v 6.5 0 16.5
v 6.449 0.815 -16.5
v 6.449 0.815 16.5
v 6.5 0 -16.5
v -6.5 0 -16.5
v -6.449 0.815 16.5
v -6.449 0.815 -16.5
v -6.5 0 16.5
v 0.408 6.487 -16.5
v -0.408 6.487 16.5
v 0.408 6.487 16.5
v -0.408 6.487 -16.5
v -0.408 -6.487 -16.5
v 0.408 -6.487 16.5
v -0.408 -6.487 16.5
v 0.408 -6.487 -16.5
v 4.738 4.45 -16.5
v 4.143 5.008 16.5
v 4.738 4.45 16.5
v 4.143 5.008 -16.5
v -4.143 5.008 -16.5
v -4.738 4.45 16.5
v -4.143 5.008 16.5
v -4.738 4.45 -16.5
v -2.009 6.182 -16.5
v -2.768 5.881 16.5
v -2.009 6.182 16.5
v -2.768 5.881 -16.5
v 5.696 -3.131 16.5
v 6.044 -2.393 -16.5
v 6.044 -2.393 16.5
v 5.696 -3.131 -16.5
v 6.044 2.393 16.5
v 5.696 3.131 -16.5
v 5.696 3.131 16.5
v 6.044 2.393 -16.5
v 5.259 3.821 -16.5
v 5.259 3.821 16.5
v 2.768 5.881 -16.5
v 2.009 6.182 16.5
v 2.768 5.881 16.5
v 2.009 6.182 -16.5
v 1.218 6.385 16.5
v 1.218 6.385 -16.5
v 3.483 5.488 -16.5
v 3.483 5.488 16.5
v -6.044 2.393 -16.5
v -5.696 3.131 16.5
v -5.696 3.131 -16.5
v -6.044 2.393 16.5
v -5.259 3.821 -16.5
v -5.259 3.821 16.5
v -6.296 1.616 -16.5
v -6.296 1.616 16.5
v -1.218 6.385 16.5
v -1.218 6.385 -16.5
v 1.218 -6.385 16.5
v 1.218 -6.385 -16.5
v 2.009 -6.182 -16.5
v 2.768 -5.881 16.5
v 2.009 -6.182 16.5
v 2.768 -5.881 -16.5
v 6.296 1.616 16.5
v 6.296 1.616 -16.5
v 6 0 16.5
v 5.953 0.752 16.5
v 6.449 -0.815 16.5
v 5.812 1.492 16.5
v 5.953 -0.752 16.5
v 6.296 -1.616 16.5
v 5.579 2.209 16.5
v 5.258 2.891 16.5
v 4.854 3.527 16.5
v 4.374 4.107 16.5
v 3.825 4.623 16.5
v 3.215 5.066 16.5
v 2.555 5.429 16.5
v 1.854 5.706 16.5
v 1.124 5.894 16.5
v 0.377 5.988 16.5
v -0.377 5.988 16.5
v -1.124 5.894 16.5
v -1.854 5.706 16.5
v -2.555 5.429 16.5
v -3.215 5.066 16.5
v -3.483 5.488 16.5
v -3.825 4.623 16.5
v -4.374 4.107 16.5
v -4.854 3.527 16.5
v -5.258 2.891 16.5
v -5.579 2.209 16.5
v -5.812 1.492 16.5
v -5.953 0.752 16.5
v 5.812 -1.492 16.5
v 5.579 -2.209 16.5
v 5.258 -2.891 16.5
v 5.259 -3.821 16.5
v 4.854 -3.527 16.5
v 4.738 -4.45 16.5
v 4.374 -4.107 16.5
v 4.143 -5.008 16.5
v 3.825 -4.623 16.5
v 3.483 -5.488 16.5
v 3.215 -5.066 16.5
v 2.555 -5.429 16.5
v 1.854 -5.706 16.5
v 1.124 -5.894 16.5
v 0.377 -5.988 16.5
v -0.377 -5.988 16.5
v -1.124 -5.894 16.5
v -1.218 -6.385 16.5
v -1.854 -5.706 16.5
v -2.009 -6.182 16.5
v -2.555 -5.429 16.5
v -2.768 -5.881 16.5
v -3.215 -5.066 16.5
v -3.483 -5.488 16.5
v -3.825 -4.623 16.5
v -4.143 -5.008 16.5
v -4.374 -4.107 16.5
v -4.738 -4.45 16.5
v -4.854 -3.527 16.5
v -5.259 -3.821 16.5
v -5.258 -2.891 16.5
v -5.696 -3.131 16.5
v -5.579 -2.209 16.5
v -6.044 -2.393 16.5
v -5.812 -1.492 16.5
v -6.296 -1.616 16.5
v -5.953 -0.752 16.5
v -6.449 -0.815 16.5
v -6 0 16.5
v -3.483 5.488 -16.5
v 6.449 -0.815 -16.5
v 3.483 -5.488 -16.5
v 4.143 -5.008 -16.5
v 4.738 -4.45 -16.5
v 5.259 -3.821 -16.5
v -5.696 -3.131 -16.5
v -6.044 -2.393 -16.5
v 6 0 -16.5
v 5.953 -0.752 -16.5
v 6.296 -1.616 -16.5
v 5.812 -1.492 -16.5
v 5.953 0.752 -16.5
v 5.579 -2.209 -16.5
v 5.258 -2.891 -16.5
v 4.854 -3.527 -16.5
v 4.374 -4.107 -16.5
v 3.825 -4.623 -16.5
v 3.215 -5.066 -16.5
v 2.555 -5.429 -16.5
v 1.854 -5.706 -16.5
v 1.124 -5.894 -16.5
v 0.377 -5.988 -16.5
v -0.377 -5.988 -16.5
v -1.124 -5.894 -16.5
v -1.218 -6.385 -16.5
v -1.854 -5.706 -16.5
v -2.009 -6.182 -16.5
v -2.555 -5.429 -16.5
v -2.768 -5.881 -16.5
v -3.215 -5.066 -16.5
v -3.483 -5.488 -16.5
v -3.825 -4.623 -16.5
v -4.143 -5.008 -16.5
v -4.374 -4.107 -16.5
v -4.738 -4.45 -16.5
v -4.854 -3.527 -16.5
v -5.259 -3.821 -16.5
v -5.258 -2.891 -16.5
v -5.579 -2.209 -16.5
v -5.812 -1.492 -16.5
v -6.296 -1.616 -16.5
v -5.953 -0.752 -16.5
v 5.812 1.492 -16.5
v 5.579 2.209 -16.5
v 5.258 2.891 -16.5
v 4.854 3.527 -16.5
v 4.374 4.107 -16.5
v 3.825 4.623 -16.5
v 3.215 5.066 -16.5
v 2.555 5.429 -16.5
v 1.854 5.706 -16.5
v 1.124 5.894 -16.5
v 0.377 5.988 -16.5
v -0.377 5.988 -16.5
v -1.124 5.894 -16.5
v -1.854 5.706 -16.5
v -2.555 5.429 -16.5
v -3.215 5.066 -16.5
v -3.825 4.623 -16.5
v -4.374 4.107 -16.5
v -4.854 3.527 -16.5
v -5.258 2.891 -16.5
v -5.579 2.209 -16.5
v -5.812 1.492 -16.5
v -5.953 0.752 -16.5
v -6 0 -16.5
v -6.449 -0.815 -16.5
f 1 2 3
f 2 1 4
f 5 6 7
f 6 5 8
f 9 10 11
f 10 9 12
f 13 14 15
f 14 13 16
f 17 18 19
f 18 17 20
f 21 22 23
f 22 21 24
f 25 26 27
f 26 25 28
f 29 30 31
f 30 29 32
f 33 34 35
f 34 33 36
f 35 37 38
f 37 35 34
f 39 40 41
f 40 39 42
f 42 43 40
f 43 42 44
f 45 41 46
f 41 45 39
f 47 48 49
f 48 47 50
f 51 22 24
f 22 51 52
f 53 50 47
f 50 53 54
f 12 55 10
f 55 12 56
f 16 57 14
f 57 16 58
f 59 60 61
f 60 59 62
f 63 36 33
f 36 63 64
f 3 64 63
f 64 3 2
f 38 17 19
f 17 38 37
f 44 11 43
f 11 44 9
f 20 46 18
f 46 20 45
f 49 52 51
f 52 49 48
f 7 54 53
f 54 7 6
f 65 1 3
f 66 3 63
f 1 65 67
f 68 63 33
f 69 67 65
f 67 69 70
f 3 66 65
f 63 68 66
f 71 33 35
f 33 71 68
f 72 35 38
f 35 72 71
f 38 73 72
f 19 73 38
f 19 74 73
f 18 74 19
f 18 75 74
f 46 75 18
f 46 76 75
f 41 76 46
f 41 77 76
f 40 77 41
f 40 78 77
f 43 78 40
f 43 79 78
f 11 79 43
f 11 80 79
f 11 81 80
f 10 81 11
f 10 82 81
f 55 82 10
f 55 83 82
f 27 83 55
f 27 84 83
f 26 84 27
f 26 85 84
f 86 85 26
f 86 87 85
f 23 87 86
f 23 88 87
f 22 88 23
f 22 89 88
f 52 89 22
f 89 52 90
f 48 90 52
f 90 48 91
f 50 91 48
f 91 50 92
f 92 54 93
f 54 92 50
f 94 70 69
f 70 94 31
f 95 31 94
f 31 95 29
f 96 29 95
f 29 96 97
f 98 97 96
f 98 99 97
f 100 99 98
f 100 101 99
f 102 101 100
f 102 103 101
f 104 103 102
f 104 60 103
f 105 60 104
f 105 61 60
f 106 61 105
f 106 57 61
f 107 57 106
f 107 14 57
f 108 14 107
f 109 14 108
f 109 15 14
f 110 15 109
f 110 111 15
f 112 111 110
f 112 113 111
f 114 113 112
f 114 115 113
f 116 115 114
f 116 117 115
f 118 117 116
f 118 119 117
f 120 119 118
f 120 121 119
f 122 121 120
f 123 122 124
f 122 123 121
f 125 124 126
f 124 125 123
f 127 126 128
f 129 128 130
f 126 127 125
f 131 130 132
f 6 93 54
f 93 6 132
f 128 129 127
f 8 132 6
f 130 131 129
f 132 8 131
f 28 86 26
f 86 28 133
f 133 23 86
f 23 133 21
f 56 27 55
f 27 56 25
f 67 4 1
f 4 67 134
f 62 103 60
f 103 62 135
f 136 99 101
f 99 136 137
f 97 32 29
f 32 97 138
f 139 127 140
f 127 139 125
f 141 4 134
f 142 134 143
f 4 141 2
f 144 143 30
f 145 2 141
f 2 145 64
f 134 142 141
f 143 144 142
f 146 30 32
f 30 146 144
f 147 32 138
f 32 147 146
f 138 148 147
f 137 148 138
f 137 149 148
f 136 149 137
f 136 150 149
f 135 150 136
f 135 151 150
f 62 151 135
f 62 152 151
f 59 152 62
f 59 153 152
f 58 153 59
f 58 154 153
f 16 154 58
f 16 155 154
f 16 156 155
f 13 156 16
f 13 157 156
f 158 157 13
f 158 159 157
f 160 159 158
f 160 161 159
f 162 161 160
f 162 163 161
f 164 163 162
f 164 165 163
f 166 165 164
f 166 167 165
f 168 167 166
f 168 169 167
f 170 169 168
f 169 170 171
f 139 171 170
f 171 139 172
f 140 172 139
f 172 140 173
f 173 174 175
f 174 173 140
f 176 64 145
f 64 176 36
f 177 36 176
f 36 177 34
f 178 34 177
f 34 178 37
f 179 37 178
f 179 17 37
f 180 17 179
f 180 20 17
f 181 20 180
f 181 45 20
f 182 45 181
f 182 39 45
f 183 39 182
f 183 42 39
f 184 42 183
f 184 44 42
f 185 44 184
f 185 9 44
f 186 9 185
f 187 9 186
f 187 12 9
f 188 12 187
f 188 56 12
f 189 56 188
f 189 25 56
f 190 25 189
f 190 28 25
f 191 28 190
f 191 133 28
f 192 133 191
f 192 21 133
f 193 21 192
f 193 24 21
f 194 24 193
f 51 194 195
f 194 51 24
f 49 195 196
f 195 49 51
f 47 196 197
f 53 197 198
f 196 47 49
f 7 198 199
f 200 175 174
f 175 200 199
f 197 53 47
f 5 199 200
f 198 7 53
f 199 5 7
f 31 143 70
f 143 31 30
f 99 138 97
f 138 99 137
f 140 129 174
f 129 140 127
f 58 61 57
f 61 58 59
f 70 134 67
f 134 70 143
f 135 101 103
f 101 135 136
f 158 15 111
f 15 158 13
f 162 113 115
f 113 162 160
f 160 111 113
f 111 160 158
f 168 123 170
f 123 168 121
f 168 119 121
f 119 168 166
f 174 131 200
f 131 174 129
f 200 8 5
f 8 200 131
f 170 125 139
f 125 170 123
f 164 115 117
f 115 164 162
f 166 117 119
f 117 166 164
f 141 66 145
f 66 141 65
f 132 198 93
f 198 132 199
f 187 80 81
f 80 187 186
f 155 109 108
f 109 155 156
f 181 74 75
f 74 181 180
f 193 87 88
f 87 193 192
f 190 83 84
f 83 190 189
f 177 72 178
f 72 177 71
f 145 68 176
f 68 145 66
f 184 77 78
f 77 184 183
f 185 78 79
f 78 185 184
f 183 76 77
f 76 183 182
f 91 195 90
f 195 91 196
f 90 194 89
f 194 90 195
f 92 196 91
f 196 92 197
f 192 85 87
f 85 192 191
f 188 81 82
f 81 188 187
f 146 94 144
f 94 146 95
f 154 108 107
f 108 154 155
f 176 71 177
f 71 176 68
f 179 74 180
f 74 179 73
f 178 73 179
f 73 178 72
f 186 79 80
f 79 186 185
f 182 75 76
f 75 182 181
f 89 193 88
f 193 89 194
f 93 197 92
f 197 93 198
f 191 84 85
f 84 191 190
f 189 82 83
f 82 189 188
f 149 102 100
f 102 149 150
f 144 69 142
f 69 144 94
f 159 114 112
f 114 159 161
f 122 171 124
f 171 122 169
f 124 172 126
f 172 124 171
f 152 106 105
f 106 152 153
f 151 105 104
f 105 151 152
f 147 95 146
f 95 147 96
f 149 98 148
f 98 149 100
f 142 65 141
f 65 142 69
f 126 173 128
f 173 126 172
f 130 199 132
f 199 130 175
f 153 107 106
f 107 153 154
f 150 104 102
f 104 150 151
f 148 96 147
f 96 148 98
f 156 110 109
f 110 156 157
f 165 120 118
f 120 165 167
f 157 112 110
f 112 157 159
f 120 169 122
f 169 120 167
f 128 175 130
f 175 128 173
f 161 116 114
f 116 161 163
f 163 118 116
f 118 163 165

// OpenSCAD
$fn = 50;


difference() {
	union() {
		translate(v = [0, 0, -16.5000000000]) {
			cylinder(h = 33, r = 6.5000000000);
		}
	}
	union() {
		translate(v = [0, 0, -100.0000000000]) {
			cylinder(h = 200, r = 6);
		}
	}
}
